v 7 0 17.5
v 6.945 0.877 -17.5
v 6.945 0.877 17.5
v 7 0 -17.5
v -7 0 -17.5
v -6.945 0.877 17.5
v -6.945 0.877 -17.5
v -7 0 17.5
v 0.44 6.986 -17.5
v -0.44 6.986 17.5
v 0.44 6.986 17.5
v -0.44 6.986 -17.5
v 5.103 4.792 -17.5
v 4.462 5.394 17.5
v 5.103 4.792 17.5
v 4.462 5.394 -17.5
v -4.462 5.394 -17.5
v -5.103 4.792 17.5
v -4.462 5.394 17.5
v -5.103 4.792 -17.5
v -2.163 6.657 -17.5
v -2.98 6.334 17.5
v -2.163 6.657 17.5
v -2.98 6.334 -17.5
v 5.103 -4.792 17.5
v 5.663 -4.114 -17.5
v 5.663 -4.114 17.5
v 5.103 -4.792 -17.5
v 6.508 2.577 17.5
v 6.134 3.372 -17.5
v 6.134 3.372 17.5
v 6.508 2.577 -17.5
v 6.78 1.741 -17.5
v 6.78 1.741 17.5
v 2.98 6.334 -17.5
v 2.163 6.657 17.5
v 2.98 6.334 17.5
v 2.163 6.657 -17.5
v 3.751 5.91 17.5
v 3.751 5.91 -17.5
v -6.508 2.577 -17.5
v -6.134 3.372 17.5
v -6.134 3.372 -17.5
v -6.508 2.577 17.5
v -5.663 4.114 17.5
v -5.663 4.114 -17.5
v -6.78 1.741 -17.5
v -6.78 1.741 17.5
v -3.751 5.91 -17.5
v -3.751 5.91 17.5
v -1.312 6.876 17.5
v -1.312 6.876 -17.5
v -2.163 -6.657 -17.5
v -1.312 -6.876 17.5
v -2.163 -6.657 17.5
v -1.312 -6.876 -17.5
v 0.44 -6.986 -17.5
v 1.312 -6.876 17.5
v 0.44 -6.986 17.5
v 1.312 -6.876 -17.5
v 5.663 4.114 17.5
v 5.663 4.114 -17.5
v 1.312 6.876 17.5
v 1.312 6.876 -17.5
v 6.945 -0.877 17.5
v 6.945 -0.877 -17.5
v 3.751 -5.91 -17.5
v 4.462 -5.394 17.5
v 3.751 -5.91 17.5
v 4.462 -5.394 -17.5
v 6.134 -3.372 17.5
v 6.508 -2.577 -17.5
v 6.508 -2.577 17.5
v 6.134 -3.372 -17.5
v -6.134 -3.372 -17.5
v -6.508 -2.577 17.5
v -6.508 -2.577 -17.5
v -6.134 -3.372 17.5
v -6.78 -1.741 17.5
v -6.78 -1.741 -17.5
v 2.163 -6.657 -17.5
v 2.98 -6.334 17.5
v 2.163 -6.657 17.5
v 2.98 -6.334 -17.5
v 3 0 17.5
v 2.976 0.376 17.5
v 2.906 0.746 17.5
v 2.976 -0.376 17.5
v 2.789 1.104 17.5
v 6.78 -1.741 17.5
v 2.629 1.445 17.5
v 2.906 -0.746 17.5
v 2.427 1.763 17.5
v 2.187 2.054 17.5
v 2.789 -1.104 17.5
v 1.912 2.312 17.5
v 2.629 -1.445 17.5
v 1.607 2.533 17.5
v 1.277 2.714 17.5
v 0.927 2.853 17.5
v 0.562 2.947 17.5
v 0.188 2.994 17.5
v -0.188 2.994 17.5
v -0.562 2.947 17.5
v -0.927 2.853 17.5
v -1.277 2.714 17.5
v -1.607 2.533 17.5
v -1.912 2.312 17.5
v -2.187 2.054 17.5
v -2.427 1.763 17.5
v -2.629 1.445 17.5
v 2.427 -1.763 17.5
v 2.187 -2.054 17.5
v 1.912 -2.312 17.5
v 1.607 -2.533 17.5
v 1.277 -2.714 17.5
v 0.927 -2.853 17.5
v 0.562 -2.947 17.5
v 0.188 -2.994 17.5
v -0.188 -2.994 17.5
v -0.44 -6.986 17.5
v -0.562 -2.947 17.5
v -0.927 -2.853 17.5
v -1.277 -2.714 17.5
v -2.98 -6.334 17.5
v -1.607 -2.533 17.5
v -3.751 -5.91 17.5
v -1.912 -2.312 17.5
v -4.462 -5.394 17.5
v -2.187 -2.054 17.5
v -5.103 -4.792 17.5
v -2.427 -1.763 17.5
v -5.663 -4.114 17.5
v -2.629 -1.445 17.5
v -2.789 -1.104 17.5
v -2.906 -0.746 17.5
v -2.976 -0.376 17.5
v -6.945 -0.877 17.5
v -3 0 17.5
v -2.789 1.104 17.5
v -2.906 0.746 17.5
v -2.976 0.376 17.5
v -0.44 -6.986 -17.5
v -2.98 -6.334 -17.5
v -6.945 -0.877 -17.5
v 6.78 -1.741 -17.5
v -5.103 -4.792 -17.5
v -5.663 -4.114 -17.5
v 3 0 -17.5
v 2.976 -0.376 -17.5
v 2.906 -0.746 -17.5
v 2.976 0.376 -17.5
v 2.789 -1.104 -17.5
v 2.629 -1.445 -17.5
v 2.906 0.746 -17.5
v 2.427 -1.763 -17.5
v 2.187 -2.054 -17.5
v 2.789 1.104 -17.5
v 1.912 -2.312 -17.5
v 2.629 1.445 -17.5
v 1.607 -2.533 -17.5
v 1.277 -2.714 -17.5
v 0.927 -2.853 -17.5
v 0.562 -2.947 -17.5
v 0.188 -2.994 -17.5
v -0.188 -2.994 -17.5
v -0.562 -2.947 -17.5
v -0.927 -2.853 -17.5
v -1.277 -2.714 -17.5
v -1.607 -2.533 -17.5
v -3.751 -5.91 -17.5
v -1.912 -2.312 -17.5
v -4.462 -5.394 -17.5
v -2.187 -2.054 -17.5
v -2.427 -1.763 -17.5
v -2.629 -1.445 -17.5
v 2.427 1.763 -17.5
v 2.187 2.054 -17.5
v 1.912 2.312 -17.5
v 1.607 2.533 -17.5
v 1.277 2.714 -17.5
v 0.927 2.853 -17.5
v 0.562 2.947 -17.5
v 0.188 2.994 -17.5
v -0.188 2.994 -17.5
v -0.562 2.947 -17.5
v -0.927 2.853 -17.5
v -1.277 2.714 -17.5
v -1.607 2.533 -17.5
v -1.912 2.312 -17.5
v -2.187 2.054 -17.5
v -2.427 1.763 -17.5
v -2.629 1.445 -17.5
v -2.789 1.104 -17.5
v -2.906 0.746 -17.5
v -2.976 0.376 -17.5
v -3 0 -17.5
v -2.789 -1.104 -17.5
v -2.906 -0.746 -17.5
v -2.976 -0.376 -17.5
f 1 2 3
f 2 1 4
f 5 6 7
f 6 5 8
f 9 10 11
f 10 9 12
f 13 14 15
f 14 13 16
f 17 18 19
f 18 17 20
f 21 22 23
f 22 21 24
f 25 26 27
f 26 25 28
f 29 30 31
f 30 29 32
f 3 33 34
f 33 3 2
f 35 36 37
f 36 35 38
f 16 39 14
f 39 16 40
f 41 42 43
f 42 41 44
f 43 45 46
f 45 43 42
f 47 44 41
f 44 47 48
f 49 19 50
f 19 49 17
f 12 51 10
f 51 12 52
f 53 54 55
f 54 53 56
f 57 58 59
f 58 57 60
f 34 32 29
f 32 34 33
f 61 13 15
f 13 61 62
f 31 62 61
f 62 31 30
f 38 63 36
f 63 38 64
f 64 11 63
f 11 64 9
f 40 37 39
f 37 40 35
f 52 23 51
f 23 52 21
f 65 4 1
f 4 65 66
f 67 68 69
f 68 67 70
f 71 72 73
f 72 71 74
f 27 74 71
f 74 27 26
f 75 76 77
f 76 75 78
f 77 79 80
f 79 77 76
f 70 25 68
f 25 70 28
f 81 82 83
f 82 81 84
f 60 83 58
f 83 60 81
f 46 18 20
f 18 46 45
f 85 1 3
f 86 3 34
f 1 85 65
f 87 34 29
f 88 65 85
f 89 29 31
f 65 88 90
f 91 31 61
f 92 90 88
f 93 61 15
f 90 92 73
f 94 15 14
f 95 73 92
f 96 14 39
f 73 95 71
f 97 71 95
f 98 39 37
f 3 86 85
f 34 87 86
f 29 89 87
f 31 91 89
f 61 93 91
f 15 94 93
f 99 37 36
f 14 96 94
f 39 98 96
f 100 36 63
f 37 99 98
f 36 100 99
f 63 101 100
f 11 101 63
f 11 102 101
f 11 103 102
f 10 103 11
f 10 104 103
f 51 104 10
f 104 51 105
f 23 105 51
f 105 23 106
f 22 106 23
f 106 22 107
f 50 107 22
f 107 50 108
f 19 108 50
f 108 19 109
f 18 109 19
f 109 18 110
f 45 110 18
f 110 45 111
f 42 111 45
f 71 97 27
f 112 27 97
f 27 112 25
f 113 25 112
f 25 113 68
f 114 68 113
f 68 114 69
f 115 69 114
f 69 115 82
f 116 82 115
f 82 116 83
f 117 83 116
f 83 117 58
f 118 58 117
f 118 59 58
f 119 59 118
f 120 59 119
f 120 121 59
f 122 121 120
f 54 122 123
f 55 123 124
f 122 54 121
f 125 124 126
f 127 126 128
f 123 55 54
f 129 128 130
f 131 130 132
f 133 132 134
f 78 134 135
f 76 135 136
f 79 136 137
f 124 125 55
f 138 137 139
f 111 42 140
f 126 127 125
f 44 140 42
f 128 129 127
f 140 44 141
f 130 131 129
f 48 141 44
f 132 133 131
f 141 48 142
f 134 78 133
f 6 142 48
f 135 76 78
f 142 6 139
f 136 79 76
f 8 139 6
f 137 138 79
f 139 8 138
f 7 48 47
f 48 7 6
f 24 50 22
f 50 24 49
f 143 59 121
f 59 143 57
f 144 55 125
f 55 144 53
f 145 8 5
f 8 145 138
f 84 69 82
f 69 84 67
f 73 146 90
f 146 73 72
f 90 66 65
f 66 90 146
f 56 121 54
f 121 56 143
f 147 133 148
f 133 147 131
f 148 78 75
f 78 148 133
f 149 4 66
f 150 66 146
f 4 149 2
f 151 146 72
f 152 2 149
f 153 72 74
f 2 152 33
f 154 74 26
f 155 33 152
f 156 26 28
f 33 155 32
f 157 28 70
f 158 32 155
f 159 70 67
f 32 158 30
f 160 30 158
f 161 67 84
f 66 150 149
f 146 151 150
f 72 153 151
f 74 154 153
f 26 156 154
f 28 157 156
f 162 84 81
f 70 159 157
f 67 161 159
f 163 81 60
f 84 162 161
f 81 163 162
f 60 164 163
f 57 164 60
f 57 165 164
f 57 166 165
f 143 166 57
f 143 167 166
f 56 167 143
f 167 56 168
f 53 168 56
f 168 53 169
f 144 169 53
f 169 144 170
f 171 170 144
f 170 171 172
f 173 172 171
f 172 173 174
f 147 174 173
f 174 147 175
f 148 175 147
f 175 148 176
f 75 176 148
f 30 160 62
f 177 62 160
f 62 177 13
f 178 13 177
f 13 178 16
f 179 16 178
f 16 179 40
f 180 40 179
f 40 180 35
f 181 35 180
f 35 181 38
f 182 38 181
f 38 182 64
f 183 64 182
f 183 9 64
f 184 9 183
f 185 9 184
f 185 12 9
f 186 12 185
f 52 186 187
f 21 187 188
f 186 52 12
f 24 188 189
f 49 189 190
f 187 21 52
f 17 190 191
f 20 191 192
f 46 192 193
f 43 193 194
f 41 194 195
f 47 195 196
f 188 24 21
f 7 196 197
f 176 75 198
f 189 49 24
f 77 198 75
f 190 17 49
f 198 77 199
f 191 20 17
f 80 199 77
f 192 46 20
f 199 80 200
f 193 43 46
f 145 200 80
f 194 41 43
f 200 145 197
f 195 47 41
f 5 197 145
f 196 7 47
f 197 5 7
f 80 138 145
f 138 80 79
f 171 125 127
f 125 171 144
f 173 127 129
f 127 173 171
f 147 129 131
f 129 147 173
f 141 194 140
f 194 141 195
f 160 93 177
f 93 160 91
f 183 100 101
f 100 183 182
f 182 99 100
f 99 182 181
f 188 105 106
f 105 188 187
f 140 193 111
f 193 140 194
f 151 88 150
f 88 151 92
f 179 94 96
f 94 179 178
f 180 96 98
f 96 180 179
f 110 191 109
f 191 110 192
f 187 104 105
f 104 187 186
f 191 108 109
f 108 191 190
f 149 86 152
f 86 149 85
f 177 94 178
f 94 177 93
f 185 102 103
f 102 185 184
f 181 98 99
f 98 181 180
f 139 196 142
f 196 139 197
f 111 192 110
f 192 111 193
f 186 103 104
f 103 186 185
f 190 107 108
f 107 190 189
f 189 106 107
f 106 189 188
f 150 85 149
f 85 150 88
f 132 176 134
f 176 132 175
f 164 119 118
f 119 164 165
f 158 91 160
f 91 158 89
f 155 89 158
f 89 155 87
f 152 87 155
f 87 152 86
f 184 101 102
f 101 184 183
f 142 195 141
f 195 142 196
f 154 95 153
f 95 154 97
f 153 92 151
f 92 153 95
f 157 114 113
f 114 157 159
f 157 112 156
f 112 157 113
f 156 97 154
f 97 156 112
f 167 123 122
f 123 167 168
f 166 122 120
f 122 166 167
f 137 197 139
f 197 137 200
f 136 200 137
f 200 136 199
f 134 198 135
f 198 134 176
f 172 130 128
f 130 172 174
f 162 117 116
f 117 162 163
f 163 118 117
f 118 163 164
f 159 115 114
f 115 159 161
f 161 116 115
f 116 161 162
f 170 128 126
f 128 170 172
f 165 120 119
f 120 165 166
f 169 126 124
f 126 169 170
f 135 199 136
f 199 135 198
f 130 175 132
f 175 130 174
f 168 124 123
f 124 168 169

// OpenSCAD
$fn = 50;


difference() {
	union() {
		translate(v = [0, 0, -17.5000000000]) {
			cylinder(h = 35, r = 7.0000000000);
		}
	}
	union() {
		translate(v = [0, 0, -100.0000000000]) {
			cylinder(h = 200, r = 3.0000000000);
		}
	}
}
